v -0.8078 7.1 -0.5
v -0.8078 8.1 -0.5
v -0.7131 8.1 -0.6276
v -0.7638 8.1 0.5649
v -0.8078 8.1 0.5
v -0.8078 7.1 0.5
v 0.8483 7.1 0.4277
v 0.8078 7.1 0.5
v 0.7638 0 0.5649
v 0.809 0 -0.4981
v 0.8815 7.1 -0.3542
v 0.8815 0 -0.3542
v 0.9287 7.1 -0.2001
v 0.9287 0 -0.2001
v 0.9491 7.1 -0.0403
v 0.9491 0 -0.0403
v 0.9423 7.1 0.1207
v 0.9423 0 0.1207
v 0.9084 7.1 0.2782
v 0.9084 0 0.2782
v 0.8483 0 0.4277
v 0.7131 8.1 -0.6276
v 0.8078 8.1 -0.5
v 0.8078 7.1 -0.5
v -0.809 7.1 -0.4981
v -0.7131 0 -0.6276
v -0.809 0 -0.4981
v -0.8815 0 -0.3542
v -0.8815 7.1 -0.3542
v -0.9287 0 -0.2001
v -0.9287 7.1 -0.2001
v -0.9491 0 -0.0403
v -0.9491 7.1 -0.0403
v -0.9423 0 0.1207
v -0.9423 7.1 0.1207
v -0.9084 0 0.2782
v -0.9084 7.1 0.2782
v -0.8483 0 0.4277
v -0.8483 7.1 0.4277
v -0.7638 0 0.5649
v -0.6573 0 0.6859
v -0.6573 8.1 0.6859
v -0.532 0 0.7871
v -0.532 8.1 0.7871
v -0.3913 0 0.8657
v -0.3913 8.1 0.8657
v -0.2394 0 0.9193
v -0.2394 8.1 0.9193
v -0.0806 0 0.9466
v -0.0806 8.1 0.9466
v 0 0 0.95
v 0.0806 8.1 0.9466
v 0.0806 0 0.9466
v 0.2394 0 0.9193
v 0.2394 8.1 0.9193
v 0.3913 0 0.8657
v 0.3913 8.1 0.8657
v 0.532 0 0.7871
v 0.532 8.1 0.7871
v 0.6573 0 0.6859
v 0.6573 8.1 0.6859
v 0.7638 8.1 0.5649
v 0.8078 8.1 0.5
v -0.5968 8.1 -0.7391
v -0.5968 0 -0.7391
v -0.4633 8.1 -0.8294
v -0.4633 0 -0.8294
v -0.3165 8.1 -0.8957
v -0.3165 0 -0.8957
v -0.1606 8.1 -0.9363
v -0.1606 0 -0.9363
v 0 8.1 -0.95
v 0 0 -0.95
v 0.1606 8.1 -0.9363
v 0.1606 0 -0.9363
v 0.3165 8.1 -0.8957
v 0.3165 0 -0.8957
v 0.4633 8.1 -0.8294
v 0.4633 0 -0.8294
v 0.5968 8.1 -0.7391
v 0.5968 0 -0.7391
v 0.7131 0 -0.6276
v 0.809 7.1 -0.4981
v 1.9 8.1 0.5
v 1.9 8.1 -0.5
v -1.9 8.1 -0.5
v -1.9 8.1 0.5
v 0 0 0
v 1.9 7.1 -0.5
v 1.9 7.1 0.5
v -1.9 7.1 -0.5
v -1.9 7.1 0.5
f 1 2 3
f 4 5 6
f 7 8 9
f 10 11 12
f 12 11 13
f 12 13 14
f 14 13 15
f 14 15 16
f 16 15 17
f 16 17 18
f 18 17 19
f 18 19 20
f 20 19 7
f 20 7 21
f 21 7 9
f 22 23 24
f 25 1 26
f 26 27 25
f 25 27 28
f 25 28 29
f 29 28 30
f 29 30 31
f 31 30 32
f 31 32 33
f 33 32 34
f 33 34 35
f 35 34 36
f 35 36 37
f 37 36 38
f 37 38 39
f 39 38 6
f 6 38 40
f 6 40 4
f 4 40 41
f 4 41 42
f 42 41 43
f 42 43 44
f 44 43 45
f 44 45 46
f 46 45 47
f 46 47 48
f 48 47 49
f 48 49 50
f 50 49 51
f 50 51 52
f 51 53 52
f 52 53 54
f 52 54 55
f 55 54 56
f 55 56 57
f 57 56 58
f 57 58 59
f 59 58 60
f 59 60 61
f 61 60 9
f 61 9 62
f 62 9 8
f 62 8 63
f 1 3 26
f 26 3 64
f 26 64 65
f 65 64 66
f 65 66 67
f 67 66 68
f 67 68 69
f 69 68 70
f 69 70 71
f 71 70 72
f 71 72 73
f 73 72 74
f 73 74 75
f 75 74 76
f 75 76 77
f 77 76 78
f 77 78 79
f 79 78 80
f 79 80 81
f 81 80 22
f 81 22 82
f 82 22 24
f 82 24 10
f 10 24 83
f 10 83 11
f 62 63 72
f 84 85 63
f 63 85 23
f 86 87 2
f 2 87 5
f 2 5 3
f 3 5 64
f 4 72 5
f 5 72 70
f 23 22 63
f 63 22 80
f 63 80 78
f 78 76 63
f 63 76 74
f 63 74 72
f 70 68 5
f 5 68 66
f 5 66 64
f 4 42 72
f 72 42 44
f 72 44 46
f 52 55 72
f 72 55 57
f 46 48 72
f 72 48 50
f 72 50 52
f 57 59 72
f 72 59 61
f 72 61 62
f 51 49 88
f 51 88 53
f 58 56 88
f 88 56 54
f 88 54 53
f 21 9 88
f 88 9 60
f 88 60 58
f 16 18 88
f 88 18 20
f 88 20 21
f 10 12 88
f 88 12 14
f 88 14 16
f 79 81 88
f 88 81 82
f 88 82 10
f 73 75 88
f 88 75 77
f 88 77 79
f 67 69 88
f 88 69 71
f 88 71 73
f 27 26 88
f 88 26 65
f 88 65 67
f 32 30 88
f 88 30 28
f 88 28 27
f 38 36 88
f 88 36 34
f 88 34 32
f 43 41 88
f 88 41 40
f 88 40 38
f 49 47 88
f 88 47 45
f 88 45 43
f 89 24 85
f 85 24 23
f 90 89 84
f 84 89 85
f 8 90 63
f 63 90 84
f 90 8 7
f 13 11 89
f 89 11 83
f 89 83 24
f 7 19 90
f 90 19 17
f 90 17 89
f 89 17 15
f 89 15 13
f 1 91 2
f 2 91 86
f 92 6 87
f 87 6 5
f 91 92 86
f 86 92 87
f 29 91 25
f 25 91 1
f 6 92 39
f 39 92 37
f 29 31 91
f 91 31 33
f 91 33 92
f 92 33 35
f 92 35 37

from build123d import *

# Parameters (mm, degrees)
SKETCH1_R  = 0.95
BODY_DEPTH = 8.1
LOCK_DEPTH = 1


with BuildPart() as part:
    # Sketch1 → Body (new body)
    with BuildSketch(Plane(origin=(0, 0, 0), x_dir=(1, 0, 0), z_dir=(0, 1, 0))):
        Circle(SKETCH1_R)
    extrude(amount=BODY_DEPTH)

    # Sketch2 → Lock (add)
    with BuildSketch(Plane(origin=(0, 8.1, 0), x_dir=(1, 0, 0), z_dir=(0, 1, 0))):
        with BuildLine():
            ThreePointArc((-0.807774721, -0.5), (-0.95, 0), (-0.807774721, 0.5))
            Line((-0.807774721, 0.5), (-1.9, 0.5))
            Line((-1.9, 0.5), (-1.9, -0.5))
            Line((-1.9, -0.5), (-0.807774721, -0.5))
        make_face()
        with BuildLine():
            Line((1.9, 0.5), (0.807774721, 0.5))
            ThreePointArc((0.807774721, 0.5), (0.91375215, 0.259917309), (0.95, 0))
            ThreePointArc((0.95, 0), (0.91375215, -0.259917309), (0.807774721, -0.5))
            Line((0.807774721, -0.5), (1.9, -0.5))
            Line((1.9, -0.5), (1.9, 0.5))
        make_face()
    extrude(amount=-LOCK_DEPTH)


solid = part.part
